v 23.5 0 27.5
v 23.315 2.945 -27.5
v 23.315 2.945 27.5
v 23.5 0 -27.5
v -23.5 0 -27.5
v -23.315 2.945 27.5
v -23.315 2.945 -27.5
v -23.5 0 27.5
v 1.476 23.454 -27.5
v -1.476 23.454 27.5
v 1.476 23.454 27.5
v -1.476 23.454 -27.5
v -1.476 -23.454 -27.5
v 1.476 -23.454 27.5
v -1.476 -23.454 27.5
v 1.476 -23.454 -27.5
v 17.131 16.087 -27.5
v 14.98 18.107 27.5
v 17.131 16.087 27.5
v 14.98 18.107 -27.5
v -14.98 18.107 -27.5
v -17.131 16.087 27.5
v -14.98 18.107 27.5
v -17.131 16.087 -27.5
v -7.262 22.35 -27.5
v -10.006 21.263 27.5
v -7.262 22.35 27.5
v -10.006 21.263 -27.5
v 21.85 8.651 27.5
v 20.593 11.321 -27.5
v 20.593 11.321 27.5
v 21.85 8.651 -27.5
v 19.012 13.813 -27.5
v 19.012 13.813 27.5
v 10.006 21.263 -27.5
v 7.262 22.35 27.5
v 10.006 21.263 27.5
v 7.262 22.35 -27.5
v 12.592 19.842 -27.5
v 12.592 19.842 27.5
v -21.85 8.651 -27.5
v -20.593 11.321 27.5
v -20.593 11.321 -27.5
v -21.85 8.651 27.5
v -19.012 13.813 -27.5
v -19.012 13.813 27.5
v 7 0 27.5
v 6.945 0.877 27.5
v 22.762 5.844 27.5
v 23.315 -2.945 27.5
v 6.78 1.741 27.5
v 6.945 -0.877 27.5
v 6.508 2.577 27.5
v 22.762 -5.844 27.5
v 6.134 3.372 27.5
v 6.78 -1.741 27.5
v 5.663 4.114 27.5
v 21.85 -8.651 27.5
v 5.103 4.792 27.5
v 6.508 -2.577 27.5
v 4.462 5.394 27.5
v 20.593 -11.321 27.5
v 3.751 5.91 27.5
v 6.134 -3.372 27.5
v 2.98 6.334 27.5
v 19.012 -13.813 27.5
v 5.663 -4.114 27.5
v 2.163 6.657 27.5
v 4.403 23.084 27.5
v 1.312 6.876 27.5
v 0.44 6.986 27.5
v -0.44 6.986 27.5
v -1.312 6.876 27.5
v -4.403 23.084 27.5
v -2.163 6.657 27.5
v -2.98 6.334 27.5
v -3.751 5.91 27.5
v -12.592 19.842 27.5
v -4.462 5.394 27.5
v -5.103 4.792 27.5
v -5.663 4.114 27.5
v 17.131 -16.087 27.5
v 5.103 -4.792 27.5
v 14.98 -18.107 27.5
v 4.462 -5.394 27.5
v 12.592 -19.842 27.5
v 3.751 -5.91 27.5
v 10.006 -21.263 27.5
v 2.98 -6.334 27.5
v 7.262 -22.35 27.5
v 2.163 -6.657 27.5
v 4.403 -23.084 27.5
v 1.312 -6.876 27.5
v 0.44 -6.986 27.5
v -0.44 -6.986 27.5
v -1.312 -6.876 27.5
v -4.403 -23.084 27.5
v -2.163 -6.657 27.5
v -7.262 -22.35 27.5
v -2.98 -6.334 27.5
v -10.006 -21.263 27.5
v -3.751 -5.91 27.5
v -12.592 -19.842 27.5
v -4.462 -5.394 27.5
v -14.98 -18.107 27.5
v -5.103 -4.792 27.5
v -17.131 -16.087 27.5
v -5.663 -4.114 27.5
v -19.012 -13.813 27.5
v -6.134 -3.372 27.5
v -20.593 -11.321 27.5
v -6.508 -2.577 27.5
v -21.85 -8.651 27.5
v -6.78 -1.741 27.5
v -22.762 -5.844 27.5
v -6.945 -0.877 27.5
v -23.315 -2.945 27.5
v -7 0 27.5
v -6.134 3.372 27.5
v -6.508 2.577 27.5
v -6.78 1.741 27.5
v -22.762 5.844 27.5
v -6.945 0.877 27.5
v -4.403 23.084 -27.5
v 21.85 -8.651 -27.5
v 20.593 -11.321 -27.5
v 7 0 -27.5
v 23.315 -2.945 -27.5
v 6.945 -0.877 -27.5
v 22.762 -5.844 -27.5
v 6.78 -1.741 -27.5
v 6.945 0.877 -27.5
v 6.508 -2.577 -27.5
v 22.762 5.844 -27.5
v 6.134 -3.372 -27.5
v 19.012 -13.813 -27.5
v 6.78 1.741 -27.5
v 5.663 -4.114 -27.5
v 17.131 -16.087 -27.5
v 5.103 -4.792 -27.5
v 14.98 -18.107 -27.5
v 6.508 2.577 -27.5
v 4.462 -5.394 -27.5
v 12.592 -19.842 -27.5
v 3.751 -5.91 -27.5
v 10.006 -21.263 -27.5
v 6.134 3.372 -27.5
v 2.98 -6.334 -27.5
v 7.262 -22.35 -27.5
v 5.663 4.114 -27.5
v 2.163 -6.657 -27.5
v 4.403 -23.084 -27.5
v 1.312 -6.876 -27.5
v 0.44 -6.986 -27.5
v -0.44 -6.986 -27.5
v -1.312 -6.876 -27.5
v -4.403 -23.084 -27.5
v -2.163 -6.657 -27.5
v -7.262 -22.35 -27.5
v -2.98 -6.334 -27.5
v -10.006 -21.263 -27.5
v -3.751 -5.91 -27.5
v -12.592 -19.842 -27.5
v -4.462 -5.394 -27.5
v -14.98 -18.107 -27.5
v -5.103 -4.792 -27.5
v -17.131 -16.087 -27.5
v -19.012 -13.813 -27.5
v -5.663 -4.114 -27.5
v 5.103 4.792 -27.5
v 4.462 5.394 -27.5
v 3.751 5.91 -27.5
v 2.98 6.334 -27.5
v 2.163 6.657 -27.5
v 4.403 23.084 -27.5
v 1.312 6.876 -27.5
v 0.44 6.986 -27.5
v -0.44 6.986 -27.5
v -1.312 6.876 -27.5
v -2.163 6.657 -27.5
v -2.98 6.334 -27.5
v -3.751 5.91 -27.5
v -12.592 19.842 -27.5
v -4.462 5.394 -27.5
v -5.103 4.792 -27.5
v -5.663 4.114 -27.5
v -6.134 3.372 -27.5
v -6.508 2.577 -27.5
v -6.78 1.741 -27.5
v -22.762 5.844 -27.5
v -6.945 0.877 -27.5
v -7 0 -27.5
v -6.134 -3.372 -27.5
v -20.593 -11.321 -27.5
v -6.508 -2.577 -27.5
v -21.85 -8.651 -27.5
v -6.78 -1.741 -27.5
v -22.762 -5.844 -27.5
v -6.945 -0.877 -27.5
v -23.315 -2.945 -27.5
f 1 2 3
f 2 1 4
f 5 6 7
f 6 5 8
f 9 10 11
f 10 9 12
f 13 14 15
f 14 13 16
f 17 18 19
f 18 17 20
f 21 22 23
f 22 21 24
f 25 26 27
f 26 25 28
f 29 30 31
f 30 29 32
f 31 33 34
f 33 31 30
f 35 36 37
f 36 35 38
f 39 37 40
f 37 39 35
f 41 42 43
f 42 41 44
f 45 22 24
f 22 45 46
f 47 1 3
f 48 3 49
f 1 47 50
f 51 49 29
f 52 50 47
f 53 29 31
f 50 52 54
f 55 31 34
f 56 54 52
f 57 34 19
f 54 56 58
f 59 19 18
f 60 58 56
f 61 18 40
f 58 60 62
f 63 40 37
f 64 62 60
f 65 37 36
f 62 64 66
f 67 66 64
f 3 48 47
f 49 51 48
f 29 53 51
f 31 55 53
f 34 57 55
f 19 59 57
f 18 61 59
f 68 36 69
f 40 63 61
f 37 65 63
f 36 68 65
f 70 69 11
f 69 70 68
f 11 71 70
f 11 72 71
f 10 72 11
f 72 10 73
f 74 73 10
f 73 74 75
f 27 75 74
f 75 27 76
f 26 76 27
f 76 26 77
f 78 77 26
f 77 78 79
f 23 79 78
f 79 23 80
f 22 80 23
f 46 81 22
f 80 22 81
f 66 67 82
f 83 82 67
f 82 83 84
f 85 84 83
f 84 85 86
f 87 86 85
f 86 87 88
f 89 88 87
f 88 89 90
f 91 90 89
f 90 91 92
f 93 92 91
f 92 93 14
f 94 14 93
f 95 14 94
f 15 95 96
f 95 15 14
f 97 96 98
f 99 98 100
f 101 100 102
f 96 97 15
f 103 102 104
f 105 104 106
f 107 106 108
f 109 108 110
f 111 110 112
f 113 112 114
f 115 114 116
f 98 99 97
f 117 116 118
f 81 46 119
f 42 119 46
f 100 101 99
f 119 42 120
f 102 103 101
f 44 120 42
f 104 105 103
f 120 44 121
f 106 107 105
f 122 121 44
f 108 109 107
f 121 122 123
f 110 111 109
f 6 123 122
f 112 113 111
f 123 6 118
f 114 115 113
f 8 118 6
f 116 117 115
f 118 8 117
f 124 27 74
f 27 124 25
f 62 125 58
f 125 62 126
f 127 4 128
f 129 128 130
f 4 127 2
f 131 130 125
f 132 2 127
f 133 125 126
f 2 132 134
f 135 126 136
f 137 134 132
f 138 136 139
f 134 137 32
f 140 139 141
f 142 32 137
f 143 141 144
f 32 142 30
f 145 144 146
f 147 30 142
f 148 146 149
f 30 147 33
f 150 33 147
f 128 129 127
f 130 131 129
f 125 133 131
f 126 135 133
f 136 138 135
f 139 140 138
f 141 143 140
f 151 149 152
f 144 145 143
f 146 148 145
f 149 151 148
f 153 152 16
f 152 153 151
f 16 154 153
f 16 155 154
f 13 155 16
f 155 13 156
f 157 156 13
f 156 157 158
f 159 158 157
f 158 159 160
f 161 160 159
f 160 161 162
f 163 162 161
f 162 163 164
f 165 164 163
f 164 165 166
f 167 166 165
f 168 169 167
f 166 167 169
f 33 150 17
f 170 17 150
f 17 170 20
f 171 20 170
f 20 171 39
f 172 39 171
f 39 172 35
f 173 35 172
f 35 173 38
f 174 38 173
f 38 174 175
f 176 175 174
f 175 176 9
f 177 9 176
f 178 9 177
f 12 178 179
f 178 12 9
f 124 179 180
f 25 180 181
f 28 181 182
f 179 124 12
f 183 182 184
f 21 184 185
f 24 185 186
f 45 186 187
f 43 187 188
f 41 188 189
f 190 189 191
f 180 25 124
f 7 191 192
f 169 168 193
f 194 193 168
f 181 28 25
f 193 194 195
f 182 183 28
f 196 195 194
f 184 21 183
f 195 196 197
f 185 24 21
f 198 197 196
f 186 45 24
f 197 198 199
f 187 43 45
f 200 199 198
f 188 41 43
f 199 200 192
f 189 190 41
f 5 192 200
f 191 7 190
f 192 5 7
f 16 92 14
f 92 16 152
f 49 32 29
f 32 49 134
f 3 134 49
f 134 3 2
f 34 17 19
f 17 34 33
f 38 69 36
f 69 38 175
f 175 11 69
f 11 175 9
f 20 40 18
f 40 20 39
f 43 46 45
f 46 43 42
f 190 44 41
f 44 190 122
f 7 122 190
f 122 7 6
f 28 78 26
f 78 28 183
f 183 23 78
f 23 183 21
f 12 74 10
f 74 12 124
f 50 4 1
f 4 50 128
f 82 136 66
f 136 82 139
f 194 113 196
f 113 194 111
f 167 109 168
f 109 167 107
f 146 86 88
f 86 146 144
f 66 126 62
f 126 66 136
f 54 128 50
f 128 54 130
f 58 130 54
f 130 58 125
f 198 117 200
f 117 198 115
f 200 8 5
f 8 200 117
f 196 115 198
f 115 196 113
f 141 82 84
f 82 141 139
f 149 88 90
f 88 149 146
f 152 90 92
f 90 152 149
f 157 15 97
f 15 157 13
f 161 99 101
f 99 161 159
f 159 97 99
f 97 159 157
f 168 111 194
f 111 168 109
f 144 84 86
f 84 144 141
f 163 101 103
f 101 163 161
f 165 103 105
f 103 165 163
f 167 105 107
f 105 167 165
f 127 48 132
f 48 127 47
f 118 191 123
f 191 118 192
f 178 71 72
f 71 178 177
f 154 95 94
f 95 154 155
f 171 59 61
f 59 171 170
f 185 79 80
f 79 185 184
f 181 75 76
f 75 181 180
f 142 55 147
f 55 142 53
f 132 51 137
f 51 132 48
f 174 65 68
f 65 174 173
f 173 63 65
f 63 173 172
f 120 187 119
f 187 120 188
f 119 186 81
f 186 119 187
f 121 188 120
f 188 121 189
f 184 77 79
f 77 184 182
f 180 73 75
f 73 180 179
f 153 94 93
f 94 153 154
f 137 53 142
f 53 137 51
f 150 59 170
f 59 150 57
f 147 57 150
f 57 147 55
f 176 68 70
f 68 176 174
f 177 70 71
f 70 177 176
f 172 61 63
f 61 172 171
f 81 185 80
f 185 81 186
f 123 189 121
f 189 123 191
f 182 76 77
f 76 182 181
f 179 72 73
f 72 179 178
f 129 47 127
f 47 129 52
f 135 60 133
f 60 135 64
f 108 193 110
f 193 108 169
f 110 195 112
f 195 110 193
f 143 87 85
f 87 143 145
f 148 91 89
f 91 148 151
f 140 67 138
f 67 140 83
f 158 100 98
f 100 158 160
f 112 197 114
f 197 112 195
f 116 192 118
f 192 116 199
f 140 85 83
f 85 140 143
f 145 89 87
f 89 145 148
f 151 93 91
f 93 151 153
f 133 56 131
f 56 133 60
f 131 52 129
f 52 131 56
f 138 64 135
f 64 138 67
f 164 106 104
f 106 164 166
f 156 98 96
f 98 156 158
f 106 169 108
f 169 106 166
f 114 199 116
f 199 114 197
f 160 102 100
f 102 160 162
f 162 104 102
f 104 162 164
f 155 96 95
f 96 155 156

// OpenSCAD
$fn = 50;


difference() {
	union() {
		translate(v = [0, 0, -27.5000000000]) {
			cylinder(h = 55, r = 23.5000000000);
		}
	}
	union() {
		translate(v = [0, 0, -100.0000000000]) {
			cylinder(h = 200, r = 7);
		}
	}
}
